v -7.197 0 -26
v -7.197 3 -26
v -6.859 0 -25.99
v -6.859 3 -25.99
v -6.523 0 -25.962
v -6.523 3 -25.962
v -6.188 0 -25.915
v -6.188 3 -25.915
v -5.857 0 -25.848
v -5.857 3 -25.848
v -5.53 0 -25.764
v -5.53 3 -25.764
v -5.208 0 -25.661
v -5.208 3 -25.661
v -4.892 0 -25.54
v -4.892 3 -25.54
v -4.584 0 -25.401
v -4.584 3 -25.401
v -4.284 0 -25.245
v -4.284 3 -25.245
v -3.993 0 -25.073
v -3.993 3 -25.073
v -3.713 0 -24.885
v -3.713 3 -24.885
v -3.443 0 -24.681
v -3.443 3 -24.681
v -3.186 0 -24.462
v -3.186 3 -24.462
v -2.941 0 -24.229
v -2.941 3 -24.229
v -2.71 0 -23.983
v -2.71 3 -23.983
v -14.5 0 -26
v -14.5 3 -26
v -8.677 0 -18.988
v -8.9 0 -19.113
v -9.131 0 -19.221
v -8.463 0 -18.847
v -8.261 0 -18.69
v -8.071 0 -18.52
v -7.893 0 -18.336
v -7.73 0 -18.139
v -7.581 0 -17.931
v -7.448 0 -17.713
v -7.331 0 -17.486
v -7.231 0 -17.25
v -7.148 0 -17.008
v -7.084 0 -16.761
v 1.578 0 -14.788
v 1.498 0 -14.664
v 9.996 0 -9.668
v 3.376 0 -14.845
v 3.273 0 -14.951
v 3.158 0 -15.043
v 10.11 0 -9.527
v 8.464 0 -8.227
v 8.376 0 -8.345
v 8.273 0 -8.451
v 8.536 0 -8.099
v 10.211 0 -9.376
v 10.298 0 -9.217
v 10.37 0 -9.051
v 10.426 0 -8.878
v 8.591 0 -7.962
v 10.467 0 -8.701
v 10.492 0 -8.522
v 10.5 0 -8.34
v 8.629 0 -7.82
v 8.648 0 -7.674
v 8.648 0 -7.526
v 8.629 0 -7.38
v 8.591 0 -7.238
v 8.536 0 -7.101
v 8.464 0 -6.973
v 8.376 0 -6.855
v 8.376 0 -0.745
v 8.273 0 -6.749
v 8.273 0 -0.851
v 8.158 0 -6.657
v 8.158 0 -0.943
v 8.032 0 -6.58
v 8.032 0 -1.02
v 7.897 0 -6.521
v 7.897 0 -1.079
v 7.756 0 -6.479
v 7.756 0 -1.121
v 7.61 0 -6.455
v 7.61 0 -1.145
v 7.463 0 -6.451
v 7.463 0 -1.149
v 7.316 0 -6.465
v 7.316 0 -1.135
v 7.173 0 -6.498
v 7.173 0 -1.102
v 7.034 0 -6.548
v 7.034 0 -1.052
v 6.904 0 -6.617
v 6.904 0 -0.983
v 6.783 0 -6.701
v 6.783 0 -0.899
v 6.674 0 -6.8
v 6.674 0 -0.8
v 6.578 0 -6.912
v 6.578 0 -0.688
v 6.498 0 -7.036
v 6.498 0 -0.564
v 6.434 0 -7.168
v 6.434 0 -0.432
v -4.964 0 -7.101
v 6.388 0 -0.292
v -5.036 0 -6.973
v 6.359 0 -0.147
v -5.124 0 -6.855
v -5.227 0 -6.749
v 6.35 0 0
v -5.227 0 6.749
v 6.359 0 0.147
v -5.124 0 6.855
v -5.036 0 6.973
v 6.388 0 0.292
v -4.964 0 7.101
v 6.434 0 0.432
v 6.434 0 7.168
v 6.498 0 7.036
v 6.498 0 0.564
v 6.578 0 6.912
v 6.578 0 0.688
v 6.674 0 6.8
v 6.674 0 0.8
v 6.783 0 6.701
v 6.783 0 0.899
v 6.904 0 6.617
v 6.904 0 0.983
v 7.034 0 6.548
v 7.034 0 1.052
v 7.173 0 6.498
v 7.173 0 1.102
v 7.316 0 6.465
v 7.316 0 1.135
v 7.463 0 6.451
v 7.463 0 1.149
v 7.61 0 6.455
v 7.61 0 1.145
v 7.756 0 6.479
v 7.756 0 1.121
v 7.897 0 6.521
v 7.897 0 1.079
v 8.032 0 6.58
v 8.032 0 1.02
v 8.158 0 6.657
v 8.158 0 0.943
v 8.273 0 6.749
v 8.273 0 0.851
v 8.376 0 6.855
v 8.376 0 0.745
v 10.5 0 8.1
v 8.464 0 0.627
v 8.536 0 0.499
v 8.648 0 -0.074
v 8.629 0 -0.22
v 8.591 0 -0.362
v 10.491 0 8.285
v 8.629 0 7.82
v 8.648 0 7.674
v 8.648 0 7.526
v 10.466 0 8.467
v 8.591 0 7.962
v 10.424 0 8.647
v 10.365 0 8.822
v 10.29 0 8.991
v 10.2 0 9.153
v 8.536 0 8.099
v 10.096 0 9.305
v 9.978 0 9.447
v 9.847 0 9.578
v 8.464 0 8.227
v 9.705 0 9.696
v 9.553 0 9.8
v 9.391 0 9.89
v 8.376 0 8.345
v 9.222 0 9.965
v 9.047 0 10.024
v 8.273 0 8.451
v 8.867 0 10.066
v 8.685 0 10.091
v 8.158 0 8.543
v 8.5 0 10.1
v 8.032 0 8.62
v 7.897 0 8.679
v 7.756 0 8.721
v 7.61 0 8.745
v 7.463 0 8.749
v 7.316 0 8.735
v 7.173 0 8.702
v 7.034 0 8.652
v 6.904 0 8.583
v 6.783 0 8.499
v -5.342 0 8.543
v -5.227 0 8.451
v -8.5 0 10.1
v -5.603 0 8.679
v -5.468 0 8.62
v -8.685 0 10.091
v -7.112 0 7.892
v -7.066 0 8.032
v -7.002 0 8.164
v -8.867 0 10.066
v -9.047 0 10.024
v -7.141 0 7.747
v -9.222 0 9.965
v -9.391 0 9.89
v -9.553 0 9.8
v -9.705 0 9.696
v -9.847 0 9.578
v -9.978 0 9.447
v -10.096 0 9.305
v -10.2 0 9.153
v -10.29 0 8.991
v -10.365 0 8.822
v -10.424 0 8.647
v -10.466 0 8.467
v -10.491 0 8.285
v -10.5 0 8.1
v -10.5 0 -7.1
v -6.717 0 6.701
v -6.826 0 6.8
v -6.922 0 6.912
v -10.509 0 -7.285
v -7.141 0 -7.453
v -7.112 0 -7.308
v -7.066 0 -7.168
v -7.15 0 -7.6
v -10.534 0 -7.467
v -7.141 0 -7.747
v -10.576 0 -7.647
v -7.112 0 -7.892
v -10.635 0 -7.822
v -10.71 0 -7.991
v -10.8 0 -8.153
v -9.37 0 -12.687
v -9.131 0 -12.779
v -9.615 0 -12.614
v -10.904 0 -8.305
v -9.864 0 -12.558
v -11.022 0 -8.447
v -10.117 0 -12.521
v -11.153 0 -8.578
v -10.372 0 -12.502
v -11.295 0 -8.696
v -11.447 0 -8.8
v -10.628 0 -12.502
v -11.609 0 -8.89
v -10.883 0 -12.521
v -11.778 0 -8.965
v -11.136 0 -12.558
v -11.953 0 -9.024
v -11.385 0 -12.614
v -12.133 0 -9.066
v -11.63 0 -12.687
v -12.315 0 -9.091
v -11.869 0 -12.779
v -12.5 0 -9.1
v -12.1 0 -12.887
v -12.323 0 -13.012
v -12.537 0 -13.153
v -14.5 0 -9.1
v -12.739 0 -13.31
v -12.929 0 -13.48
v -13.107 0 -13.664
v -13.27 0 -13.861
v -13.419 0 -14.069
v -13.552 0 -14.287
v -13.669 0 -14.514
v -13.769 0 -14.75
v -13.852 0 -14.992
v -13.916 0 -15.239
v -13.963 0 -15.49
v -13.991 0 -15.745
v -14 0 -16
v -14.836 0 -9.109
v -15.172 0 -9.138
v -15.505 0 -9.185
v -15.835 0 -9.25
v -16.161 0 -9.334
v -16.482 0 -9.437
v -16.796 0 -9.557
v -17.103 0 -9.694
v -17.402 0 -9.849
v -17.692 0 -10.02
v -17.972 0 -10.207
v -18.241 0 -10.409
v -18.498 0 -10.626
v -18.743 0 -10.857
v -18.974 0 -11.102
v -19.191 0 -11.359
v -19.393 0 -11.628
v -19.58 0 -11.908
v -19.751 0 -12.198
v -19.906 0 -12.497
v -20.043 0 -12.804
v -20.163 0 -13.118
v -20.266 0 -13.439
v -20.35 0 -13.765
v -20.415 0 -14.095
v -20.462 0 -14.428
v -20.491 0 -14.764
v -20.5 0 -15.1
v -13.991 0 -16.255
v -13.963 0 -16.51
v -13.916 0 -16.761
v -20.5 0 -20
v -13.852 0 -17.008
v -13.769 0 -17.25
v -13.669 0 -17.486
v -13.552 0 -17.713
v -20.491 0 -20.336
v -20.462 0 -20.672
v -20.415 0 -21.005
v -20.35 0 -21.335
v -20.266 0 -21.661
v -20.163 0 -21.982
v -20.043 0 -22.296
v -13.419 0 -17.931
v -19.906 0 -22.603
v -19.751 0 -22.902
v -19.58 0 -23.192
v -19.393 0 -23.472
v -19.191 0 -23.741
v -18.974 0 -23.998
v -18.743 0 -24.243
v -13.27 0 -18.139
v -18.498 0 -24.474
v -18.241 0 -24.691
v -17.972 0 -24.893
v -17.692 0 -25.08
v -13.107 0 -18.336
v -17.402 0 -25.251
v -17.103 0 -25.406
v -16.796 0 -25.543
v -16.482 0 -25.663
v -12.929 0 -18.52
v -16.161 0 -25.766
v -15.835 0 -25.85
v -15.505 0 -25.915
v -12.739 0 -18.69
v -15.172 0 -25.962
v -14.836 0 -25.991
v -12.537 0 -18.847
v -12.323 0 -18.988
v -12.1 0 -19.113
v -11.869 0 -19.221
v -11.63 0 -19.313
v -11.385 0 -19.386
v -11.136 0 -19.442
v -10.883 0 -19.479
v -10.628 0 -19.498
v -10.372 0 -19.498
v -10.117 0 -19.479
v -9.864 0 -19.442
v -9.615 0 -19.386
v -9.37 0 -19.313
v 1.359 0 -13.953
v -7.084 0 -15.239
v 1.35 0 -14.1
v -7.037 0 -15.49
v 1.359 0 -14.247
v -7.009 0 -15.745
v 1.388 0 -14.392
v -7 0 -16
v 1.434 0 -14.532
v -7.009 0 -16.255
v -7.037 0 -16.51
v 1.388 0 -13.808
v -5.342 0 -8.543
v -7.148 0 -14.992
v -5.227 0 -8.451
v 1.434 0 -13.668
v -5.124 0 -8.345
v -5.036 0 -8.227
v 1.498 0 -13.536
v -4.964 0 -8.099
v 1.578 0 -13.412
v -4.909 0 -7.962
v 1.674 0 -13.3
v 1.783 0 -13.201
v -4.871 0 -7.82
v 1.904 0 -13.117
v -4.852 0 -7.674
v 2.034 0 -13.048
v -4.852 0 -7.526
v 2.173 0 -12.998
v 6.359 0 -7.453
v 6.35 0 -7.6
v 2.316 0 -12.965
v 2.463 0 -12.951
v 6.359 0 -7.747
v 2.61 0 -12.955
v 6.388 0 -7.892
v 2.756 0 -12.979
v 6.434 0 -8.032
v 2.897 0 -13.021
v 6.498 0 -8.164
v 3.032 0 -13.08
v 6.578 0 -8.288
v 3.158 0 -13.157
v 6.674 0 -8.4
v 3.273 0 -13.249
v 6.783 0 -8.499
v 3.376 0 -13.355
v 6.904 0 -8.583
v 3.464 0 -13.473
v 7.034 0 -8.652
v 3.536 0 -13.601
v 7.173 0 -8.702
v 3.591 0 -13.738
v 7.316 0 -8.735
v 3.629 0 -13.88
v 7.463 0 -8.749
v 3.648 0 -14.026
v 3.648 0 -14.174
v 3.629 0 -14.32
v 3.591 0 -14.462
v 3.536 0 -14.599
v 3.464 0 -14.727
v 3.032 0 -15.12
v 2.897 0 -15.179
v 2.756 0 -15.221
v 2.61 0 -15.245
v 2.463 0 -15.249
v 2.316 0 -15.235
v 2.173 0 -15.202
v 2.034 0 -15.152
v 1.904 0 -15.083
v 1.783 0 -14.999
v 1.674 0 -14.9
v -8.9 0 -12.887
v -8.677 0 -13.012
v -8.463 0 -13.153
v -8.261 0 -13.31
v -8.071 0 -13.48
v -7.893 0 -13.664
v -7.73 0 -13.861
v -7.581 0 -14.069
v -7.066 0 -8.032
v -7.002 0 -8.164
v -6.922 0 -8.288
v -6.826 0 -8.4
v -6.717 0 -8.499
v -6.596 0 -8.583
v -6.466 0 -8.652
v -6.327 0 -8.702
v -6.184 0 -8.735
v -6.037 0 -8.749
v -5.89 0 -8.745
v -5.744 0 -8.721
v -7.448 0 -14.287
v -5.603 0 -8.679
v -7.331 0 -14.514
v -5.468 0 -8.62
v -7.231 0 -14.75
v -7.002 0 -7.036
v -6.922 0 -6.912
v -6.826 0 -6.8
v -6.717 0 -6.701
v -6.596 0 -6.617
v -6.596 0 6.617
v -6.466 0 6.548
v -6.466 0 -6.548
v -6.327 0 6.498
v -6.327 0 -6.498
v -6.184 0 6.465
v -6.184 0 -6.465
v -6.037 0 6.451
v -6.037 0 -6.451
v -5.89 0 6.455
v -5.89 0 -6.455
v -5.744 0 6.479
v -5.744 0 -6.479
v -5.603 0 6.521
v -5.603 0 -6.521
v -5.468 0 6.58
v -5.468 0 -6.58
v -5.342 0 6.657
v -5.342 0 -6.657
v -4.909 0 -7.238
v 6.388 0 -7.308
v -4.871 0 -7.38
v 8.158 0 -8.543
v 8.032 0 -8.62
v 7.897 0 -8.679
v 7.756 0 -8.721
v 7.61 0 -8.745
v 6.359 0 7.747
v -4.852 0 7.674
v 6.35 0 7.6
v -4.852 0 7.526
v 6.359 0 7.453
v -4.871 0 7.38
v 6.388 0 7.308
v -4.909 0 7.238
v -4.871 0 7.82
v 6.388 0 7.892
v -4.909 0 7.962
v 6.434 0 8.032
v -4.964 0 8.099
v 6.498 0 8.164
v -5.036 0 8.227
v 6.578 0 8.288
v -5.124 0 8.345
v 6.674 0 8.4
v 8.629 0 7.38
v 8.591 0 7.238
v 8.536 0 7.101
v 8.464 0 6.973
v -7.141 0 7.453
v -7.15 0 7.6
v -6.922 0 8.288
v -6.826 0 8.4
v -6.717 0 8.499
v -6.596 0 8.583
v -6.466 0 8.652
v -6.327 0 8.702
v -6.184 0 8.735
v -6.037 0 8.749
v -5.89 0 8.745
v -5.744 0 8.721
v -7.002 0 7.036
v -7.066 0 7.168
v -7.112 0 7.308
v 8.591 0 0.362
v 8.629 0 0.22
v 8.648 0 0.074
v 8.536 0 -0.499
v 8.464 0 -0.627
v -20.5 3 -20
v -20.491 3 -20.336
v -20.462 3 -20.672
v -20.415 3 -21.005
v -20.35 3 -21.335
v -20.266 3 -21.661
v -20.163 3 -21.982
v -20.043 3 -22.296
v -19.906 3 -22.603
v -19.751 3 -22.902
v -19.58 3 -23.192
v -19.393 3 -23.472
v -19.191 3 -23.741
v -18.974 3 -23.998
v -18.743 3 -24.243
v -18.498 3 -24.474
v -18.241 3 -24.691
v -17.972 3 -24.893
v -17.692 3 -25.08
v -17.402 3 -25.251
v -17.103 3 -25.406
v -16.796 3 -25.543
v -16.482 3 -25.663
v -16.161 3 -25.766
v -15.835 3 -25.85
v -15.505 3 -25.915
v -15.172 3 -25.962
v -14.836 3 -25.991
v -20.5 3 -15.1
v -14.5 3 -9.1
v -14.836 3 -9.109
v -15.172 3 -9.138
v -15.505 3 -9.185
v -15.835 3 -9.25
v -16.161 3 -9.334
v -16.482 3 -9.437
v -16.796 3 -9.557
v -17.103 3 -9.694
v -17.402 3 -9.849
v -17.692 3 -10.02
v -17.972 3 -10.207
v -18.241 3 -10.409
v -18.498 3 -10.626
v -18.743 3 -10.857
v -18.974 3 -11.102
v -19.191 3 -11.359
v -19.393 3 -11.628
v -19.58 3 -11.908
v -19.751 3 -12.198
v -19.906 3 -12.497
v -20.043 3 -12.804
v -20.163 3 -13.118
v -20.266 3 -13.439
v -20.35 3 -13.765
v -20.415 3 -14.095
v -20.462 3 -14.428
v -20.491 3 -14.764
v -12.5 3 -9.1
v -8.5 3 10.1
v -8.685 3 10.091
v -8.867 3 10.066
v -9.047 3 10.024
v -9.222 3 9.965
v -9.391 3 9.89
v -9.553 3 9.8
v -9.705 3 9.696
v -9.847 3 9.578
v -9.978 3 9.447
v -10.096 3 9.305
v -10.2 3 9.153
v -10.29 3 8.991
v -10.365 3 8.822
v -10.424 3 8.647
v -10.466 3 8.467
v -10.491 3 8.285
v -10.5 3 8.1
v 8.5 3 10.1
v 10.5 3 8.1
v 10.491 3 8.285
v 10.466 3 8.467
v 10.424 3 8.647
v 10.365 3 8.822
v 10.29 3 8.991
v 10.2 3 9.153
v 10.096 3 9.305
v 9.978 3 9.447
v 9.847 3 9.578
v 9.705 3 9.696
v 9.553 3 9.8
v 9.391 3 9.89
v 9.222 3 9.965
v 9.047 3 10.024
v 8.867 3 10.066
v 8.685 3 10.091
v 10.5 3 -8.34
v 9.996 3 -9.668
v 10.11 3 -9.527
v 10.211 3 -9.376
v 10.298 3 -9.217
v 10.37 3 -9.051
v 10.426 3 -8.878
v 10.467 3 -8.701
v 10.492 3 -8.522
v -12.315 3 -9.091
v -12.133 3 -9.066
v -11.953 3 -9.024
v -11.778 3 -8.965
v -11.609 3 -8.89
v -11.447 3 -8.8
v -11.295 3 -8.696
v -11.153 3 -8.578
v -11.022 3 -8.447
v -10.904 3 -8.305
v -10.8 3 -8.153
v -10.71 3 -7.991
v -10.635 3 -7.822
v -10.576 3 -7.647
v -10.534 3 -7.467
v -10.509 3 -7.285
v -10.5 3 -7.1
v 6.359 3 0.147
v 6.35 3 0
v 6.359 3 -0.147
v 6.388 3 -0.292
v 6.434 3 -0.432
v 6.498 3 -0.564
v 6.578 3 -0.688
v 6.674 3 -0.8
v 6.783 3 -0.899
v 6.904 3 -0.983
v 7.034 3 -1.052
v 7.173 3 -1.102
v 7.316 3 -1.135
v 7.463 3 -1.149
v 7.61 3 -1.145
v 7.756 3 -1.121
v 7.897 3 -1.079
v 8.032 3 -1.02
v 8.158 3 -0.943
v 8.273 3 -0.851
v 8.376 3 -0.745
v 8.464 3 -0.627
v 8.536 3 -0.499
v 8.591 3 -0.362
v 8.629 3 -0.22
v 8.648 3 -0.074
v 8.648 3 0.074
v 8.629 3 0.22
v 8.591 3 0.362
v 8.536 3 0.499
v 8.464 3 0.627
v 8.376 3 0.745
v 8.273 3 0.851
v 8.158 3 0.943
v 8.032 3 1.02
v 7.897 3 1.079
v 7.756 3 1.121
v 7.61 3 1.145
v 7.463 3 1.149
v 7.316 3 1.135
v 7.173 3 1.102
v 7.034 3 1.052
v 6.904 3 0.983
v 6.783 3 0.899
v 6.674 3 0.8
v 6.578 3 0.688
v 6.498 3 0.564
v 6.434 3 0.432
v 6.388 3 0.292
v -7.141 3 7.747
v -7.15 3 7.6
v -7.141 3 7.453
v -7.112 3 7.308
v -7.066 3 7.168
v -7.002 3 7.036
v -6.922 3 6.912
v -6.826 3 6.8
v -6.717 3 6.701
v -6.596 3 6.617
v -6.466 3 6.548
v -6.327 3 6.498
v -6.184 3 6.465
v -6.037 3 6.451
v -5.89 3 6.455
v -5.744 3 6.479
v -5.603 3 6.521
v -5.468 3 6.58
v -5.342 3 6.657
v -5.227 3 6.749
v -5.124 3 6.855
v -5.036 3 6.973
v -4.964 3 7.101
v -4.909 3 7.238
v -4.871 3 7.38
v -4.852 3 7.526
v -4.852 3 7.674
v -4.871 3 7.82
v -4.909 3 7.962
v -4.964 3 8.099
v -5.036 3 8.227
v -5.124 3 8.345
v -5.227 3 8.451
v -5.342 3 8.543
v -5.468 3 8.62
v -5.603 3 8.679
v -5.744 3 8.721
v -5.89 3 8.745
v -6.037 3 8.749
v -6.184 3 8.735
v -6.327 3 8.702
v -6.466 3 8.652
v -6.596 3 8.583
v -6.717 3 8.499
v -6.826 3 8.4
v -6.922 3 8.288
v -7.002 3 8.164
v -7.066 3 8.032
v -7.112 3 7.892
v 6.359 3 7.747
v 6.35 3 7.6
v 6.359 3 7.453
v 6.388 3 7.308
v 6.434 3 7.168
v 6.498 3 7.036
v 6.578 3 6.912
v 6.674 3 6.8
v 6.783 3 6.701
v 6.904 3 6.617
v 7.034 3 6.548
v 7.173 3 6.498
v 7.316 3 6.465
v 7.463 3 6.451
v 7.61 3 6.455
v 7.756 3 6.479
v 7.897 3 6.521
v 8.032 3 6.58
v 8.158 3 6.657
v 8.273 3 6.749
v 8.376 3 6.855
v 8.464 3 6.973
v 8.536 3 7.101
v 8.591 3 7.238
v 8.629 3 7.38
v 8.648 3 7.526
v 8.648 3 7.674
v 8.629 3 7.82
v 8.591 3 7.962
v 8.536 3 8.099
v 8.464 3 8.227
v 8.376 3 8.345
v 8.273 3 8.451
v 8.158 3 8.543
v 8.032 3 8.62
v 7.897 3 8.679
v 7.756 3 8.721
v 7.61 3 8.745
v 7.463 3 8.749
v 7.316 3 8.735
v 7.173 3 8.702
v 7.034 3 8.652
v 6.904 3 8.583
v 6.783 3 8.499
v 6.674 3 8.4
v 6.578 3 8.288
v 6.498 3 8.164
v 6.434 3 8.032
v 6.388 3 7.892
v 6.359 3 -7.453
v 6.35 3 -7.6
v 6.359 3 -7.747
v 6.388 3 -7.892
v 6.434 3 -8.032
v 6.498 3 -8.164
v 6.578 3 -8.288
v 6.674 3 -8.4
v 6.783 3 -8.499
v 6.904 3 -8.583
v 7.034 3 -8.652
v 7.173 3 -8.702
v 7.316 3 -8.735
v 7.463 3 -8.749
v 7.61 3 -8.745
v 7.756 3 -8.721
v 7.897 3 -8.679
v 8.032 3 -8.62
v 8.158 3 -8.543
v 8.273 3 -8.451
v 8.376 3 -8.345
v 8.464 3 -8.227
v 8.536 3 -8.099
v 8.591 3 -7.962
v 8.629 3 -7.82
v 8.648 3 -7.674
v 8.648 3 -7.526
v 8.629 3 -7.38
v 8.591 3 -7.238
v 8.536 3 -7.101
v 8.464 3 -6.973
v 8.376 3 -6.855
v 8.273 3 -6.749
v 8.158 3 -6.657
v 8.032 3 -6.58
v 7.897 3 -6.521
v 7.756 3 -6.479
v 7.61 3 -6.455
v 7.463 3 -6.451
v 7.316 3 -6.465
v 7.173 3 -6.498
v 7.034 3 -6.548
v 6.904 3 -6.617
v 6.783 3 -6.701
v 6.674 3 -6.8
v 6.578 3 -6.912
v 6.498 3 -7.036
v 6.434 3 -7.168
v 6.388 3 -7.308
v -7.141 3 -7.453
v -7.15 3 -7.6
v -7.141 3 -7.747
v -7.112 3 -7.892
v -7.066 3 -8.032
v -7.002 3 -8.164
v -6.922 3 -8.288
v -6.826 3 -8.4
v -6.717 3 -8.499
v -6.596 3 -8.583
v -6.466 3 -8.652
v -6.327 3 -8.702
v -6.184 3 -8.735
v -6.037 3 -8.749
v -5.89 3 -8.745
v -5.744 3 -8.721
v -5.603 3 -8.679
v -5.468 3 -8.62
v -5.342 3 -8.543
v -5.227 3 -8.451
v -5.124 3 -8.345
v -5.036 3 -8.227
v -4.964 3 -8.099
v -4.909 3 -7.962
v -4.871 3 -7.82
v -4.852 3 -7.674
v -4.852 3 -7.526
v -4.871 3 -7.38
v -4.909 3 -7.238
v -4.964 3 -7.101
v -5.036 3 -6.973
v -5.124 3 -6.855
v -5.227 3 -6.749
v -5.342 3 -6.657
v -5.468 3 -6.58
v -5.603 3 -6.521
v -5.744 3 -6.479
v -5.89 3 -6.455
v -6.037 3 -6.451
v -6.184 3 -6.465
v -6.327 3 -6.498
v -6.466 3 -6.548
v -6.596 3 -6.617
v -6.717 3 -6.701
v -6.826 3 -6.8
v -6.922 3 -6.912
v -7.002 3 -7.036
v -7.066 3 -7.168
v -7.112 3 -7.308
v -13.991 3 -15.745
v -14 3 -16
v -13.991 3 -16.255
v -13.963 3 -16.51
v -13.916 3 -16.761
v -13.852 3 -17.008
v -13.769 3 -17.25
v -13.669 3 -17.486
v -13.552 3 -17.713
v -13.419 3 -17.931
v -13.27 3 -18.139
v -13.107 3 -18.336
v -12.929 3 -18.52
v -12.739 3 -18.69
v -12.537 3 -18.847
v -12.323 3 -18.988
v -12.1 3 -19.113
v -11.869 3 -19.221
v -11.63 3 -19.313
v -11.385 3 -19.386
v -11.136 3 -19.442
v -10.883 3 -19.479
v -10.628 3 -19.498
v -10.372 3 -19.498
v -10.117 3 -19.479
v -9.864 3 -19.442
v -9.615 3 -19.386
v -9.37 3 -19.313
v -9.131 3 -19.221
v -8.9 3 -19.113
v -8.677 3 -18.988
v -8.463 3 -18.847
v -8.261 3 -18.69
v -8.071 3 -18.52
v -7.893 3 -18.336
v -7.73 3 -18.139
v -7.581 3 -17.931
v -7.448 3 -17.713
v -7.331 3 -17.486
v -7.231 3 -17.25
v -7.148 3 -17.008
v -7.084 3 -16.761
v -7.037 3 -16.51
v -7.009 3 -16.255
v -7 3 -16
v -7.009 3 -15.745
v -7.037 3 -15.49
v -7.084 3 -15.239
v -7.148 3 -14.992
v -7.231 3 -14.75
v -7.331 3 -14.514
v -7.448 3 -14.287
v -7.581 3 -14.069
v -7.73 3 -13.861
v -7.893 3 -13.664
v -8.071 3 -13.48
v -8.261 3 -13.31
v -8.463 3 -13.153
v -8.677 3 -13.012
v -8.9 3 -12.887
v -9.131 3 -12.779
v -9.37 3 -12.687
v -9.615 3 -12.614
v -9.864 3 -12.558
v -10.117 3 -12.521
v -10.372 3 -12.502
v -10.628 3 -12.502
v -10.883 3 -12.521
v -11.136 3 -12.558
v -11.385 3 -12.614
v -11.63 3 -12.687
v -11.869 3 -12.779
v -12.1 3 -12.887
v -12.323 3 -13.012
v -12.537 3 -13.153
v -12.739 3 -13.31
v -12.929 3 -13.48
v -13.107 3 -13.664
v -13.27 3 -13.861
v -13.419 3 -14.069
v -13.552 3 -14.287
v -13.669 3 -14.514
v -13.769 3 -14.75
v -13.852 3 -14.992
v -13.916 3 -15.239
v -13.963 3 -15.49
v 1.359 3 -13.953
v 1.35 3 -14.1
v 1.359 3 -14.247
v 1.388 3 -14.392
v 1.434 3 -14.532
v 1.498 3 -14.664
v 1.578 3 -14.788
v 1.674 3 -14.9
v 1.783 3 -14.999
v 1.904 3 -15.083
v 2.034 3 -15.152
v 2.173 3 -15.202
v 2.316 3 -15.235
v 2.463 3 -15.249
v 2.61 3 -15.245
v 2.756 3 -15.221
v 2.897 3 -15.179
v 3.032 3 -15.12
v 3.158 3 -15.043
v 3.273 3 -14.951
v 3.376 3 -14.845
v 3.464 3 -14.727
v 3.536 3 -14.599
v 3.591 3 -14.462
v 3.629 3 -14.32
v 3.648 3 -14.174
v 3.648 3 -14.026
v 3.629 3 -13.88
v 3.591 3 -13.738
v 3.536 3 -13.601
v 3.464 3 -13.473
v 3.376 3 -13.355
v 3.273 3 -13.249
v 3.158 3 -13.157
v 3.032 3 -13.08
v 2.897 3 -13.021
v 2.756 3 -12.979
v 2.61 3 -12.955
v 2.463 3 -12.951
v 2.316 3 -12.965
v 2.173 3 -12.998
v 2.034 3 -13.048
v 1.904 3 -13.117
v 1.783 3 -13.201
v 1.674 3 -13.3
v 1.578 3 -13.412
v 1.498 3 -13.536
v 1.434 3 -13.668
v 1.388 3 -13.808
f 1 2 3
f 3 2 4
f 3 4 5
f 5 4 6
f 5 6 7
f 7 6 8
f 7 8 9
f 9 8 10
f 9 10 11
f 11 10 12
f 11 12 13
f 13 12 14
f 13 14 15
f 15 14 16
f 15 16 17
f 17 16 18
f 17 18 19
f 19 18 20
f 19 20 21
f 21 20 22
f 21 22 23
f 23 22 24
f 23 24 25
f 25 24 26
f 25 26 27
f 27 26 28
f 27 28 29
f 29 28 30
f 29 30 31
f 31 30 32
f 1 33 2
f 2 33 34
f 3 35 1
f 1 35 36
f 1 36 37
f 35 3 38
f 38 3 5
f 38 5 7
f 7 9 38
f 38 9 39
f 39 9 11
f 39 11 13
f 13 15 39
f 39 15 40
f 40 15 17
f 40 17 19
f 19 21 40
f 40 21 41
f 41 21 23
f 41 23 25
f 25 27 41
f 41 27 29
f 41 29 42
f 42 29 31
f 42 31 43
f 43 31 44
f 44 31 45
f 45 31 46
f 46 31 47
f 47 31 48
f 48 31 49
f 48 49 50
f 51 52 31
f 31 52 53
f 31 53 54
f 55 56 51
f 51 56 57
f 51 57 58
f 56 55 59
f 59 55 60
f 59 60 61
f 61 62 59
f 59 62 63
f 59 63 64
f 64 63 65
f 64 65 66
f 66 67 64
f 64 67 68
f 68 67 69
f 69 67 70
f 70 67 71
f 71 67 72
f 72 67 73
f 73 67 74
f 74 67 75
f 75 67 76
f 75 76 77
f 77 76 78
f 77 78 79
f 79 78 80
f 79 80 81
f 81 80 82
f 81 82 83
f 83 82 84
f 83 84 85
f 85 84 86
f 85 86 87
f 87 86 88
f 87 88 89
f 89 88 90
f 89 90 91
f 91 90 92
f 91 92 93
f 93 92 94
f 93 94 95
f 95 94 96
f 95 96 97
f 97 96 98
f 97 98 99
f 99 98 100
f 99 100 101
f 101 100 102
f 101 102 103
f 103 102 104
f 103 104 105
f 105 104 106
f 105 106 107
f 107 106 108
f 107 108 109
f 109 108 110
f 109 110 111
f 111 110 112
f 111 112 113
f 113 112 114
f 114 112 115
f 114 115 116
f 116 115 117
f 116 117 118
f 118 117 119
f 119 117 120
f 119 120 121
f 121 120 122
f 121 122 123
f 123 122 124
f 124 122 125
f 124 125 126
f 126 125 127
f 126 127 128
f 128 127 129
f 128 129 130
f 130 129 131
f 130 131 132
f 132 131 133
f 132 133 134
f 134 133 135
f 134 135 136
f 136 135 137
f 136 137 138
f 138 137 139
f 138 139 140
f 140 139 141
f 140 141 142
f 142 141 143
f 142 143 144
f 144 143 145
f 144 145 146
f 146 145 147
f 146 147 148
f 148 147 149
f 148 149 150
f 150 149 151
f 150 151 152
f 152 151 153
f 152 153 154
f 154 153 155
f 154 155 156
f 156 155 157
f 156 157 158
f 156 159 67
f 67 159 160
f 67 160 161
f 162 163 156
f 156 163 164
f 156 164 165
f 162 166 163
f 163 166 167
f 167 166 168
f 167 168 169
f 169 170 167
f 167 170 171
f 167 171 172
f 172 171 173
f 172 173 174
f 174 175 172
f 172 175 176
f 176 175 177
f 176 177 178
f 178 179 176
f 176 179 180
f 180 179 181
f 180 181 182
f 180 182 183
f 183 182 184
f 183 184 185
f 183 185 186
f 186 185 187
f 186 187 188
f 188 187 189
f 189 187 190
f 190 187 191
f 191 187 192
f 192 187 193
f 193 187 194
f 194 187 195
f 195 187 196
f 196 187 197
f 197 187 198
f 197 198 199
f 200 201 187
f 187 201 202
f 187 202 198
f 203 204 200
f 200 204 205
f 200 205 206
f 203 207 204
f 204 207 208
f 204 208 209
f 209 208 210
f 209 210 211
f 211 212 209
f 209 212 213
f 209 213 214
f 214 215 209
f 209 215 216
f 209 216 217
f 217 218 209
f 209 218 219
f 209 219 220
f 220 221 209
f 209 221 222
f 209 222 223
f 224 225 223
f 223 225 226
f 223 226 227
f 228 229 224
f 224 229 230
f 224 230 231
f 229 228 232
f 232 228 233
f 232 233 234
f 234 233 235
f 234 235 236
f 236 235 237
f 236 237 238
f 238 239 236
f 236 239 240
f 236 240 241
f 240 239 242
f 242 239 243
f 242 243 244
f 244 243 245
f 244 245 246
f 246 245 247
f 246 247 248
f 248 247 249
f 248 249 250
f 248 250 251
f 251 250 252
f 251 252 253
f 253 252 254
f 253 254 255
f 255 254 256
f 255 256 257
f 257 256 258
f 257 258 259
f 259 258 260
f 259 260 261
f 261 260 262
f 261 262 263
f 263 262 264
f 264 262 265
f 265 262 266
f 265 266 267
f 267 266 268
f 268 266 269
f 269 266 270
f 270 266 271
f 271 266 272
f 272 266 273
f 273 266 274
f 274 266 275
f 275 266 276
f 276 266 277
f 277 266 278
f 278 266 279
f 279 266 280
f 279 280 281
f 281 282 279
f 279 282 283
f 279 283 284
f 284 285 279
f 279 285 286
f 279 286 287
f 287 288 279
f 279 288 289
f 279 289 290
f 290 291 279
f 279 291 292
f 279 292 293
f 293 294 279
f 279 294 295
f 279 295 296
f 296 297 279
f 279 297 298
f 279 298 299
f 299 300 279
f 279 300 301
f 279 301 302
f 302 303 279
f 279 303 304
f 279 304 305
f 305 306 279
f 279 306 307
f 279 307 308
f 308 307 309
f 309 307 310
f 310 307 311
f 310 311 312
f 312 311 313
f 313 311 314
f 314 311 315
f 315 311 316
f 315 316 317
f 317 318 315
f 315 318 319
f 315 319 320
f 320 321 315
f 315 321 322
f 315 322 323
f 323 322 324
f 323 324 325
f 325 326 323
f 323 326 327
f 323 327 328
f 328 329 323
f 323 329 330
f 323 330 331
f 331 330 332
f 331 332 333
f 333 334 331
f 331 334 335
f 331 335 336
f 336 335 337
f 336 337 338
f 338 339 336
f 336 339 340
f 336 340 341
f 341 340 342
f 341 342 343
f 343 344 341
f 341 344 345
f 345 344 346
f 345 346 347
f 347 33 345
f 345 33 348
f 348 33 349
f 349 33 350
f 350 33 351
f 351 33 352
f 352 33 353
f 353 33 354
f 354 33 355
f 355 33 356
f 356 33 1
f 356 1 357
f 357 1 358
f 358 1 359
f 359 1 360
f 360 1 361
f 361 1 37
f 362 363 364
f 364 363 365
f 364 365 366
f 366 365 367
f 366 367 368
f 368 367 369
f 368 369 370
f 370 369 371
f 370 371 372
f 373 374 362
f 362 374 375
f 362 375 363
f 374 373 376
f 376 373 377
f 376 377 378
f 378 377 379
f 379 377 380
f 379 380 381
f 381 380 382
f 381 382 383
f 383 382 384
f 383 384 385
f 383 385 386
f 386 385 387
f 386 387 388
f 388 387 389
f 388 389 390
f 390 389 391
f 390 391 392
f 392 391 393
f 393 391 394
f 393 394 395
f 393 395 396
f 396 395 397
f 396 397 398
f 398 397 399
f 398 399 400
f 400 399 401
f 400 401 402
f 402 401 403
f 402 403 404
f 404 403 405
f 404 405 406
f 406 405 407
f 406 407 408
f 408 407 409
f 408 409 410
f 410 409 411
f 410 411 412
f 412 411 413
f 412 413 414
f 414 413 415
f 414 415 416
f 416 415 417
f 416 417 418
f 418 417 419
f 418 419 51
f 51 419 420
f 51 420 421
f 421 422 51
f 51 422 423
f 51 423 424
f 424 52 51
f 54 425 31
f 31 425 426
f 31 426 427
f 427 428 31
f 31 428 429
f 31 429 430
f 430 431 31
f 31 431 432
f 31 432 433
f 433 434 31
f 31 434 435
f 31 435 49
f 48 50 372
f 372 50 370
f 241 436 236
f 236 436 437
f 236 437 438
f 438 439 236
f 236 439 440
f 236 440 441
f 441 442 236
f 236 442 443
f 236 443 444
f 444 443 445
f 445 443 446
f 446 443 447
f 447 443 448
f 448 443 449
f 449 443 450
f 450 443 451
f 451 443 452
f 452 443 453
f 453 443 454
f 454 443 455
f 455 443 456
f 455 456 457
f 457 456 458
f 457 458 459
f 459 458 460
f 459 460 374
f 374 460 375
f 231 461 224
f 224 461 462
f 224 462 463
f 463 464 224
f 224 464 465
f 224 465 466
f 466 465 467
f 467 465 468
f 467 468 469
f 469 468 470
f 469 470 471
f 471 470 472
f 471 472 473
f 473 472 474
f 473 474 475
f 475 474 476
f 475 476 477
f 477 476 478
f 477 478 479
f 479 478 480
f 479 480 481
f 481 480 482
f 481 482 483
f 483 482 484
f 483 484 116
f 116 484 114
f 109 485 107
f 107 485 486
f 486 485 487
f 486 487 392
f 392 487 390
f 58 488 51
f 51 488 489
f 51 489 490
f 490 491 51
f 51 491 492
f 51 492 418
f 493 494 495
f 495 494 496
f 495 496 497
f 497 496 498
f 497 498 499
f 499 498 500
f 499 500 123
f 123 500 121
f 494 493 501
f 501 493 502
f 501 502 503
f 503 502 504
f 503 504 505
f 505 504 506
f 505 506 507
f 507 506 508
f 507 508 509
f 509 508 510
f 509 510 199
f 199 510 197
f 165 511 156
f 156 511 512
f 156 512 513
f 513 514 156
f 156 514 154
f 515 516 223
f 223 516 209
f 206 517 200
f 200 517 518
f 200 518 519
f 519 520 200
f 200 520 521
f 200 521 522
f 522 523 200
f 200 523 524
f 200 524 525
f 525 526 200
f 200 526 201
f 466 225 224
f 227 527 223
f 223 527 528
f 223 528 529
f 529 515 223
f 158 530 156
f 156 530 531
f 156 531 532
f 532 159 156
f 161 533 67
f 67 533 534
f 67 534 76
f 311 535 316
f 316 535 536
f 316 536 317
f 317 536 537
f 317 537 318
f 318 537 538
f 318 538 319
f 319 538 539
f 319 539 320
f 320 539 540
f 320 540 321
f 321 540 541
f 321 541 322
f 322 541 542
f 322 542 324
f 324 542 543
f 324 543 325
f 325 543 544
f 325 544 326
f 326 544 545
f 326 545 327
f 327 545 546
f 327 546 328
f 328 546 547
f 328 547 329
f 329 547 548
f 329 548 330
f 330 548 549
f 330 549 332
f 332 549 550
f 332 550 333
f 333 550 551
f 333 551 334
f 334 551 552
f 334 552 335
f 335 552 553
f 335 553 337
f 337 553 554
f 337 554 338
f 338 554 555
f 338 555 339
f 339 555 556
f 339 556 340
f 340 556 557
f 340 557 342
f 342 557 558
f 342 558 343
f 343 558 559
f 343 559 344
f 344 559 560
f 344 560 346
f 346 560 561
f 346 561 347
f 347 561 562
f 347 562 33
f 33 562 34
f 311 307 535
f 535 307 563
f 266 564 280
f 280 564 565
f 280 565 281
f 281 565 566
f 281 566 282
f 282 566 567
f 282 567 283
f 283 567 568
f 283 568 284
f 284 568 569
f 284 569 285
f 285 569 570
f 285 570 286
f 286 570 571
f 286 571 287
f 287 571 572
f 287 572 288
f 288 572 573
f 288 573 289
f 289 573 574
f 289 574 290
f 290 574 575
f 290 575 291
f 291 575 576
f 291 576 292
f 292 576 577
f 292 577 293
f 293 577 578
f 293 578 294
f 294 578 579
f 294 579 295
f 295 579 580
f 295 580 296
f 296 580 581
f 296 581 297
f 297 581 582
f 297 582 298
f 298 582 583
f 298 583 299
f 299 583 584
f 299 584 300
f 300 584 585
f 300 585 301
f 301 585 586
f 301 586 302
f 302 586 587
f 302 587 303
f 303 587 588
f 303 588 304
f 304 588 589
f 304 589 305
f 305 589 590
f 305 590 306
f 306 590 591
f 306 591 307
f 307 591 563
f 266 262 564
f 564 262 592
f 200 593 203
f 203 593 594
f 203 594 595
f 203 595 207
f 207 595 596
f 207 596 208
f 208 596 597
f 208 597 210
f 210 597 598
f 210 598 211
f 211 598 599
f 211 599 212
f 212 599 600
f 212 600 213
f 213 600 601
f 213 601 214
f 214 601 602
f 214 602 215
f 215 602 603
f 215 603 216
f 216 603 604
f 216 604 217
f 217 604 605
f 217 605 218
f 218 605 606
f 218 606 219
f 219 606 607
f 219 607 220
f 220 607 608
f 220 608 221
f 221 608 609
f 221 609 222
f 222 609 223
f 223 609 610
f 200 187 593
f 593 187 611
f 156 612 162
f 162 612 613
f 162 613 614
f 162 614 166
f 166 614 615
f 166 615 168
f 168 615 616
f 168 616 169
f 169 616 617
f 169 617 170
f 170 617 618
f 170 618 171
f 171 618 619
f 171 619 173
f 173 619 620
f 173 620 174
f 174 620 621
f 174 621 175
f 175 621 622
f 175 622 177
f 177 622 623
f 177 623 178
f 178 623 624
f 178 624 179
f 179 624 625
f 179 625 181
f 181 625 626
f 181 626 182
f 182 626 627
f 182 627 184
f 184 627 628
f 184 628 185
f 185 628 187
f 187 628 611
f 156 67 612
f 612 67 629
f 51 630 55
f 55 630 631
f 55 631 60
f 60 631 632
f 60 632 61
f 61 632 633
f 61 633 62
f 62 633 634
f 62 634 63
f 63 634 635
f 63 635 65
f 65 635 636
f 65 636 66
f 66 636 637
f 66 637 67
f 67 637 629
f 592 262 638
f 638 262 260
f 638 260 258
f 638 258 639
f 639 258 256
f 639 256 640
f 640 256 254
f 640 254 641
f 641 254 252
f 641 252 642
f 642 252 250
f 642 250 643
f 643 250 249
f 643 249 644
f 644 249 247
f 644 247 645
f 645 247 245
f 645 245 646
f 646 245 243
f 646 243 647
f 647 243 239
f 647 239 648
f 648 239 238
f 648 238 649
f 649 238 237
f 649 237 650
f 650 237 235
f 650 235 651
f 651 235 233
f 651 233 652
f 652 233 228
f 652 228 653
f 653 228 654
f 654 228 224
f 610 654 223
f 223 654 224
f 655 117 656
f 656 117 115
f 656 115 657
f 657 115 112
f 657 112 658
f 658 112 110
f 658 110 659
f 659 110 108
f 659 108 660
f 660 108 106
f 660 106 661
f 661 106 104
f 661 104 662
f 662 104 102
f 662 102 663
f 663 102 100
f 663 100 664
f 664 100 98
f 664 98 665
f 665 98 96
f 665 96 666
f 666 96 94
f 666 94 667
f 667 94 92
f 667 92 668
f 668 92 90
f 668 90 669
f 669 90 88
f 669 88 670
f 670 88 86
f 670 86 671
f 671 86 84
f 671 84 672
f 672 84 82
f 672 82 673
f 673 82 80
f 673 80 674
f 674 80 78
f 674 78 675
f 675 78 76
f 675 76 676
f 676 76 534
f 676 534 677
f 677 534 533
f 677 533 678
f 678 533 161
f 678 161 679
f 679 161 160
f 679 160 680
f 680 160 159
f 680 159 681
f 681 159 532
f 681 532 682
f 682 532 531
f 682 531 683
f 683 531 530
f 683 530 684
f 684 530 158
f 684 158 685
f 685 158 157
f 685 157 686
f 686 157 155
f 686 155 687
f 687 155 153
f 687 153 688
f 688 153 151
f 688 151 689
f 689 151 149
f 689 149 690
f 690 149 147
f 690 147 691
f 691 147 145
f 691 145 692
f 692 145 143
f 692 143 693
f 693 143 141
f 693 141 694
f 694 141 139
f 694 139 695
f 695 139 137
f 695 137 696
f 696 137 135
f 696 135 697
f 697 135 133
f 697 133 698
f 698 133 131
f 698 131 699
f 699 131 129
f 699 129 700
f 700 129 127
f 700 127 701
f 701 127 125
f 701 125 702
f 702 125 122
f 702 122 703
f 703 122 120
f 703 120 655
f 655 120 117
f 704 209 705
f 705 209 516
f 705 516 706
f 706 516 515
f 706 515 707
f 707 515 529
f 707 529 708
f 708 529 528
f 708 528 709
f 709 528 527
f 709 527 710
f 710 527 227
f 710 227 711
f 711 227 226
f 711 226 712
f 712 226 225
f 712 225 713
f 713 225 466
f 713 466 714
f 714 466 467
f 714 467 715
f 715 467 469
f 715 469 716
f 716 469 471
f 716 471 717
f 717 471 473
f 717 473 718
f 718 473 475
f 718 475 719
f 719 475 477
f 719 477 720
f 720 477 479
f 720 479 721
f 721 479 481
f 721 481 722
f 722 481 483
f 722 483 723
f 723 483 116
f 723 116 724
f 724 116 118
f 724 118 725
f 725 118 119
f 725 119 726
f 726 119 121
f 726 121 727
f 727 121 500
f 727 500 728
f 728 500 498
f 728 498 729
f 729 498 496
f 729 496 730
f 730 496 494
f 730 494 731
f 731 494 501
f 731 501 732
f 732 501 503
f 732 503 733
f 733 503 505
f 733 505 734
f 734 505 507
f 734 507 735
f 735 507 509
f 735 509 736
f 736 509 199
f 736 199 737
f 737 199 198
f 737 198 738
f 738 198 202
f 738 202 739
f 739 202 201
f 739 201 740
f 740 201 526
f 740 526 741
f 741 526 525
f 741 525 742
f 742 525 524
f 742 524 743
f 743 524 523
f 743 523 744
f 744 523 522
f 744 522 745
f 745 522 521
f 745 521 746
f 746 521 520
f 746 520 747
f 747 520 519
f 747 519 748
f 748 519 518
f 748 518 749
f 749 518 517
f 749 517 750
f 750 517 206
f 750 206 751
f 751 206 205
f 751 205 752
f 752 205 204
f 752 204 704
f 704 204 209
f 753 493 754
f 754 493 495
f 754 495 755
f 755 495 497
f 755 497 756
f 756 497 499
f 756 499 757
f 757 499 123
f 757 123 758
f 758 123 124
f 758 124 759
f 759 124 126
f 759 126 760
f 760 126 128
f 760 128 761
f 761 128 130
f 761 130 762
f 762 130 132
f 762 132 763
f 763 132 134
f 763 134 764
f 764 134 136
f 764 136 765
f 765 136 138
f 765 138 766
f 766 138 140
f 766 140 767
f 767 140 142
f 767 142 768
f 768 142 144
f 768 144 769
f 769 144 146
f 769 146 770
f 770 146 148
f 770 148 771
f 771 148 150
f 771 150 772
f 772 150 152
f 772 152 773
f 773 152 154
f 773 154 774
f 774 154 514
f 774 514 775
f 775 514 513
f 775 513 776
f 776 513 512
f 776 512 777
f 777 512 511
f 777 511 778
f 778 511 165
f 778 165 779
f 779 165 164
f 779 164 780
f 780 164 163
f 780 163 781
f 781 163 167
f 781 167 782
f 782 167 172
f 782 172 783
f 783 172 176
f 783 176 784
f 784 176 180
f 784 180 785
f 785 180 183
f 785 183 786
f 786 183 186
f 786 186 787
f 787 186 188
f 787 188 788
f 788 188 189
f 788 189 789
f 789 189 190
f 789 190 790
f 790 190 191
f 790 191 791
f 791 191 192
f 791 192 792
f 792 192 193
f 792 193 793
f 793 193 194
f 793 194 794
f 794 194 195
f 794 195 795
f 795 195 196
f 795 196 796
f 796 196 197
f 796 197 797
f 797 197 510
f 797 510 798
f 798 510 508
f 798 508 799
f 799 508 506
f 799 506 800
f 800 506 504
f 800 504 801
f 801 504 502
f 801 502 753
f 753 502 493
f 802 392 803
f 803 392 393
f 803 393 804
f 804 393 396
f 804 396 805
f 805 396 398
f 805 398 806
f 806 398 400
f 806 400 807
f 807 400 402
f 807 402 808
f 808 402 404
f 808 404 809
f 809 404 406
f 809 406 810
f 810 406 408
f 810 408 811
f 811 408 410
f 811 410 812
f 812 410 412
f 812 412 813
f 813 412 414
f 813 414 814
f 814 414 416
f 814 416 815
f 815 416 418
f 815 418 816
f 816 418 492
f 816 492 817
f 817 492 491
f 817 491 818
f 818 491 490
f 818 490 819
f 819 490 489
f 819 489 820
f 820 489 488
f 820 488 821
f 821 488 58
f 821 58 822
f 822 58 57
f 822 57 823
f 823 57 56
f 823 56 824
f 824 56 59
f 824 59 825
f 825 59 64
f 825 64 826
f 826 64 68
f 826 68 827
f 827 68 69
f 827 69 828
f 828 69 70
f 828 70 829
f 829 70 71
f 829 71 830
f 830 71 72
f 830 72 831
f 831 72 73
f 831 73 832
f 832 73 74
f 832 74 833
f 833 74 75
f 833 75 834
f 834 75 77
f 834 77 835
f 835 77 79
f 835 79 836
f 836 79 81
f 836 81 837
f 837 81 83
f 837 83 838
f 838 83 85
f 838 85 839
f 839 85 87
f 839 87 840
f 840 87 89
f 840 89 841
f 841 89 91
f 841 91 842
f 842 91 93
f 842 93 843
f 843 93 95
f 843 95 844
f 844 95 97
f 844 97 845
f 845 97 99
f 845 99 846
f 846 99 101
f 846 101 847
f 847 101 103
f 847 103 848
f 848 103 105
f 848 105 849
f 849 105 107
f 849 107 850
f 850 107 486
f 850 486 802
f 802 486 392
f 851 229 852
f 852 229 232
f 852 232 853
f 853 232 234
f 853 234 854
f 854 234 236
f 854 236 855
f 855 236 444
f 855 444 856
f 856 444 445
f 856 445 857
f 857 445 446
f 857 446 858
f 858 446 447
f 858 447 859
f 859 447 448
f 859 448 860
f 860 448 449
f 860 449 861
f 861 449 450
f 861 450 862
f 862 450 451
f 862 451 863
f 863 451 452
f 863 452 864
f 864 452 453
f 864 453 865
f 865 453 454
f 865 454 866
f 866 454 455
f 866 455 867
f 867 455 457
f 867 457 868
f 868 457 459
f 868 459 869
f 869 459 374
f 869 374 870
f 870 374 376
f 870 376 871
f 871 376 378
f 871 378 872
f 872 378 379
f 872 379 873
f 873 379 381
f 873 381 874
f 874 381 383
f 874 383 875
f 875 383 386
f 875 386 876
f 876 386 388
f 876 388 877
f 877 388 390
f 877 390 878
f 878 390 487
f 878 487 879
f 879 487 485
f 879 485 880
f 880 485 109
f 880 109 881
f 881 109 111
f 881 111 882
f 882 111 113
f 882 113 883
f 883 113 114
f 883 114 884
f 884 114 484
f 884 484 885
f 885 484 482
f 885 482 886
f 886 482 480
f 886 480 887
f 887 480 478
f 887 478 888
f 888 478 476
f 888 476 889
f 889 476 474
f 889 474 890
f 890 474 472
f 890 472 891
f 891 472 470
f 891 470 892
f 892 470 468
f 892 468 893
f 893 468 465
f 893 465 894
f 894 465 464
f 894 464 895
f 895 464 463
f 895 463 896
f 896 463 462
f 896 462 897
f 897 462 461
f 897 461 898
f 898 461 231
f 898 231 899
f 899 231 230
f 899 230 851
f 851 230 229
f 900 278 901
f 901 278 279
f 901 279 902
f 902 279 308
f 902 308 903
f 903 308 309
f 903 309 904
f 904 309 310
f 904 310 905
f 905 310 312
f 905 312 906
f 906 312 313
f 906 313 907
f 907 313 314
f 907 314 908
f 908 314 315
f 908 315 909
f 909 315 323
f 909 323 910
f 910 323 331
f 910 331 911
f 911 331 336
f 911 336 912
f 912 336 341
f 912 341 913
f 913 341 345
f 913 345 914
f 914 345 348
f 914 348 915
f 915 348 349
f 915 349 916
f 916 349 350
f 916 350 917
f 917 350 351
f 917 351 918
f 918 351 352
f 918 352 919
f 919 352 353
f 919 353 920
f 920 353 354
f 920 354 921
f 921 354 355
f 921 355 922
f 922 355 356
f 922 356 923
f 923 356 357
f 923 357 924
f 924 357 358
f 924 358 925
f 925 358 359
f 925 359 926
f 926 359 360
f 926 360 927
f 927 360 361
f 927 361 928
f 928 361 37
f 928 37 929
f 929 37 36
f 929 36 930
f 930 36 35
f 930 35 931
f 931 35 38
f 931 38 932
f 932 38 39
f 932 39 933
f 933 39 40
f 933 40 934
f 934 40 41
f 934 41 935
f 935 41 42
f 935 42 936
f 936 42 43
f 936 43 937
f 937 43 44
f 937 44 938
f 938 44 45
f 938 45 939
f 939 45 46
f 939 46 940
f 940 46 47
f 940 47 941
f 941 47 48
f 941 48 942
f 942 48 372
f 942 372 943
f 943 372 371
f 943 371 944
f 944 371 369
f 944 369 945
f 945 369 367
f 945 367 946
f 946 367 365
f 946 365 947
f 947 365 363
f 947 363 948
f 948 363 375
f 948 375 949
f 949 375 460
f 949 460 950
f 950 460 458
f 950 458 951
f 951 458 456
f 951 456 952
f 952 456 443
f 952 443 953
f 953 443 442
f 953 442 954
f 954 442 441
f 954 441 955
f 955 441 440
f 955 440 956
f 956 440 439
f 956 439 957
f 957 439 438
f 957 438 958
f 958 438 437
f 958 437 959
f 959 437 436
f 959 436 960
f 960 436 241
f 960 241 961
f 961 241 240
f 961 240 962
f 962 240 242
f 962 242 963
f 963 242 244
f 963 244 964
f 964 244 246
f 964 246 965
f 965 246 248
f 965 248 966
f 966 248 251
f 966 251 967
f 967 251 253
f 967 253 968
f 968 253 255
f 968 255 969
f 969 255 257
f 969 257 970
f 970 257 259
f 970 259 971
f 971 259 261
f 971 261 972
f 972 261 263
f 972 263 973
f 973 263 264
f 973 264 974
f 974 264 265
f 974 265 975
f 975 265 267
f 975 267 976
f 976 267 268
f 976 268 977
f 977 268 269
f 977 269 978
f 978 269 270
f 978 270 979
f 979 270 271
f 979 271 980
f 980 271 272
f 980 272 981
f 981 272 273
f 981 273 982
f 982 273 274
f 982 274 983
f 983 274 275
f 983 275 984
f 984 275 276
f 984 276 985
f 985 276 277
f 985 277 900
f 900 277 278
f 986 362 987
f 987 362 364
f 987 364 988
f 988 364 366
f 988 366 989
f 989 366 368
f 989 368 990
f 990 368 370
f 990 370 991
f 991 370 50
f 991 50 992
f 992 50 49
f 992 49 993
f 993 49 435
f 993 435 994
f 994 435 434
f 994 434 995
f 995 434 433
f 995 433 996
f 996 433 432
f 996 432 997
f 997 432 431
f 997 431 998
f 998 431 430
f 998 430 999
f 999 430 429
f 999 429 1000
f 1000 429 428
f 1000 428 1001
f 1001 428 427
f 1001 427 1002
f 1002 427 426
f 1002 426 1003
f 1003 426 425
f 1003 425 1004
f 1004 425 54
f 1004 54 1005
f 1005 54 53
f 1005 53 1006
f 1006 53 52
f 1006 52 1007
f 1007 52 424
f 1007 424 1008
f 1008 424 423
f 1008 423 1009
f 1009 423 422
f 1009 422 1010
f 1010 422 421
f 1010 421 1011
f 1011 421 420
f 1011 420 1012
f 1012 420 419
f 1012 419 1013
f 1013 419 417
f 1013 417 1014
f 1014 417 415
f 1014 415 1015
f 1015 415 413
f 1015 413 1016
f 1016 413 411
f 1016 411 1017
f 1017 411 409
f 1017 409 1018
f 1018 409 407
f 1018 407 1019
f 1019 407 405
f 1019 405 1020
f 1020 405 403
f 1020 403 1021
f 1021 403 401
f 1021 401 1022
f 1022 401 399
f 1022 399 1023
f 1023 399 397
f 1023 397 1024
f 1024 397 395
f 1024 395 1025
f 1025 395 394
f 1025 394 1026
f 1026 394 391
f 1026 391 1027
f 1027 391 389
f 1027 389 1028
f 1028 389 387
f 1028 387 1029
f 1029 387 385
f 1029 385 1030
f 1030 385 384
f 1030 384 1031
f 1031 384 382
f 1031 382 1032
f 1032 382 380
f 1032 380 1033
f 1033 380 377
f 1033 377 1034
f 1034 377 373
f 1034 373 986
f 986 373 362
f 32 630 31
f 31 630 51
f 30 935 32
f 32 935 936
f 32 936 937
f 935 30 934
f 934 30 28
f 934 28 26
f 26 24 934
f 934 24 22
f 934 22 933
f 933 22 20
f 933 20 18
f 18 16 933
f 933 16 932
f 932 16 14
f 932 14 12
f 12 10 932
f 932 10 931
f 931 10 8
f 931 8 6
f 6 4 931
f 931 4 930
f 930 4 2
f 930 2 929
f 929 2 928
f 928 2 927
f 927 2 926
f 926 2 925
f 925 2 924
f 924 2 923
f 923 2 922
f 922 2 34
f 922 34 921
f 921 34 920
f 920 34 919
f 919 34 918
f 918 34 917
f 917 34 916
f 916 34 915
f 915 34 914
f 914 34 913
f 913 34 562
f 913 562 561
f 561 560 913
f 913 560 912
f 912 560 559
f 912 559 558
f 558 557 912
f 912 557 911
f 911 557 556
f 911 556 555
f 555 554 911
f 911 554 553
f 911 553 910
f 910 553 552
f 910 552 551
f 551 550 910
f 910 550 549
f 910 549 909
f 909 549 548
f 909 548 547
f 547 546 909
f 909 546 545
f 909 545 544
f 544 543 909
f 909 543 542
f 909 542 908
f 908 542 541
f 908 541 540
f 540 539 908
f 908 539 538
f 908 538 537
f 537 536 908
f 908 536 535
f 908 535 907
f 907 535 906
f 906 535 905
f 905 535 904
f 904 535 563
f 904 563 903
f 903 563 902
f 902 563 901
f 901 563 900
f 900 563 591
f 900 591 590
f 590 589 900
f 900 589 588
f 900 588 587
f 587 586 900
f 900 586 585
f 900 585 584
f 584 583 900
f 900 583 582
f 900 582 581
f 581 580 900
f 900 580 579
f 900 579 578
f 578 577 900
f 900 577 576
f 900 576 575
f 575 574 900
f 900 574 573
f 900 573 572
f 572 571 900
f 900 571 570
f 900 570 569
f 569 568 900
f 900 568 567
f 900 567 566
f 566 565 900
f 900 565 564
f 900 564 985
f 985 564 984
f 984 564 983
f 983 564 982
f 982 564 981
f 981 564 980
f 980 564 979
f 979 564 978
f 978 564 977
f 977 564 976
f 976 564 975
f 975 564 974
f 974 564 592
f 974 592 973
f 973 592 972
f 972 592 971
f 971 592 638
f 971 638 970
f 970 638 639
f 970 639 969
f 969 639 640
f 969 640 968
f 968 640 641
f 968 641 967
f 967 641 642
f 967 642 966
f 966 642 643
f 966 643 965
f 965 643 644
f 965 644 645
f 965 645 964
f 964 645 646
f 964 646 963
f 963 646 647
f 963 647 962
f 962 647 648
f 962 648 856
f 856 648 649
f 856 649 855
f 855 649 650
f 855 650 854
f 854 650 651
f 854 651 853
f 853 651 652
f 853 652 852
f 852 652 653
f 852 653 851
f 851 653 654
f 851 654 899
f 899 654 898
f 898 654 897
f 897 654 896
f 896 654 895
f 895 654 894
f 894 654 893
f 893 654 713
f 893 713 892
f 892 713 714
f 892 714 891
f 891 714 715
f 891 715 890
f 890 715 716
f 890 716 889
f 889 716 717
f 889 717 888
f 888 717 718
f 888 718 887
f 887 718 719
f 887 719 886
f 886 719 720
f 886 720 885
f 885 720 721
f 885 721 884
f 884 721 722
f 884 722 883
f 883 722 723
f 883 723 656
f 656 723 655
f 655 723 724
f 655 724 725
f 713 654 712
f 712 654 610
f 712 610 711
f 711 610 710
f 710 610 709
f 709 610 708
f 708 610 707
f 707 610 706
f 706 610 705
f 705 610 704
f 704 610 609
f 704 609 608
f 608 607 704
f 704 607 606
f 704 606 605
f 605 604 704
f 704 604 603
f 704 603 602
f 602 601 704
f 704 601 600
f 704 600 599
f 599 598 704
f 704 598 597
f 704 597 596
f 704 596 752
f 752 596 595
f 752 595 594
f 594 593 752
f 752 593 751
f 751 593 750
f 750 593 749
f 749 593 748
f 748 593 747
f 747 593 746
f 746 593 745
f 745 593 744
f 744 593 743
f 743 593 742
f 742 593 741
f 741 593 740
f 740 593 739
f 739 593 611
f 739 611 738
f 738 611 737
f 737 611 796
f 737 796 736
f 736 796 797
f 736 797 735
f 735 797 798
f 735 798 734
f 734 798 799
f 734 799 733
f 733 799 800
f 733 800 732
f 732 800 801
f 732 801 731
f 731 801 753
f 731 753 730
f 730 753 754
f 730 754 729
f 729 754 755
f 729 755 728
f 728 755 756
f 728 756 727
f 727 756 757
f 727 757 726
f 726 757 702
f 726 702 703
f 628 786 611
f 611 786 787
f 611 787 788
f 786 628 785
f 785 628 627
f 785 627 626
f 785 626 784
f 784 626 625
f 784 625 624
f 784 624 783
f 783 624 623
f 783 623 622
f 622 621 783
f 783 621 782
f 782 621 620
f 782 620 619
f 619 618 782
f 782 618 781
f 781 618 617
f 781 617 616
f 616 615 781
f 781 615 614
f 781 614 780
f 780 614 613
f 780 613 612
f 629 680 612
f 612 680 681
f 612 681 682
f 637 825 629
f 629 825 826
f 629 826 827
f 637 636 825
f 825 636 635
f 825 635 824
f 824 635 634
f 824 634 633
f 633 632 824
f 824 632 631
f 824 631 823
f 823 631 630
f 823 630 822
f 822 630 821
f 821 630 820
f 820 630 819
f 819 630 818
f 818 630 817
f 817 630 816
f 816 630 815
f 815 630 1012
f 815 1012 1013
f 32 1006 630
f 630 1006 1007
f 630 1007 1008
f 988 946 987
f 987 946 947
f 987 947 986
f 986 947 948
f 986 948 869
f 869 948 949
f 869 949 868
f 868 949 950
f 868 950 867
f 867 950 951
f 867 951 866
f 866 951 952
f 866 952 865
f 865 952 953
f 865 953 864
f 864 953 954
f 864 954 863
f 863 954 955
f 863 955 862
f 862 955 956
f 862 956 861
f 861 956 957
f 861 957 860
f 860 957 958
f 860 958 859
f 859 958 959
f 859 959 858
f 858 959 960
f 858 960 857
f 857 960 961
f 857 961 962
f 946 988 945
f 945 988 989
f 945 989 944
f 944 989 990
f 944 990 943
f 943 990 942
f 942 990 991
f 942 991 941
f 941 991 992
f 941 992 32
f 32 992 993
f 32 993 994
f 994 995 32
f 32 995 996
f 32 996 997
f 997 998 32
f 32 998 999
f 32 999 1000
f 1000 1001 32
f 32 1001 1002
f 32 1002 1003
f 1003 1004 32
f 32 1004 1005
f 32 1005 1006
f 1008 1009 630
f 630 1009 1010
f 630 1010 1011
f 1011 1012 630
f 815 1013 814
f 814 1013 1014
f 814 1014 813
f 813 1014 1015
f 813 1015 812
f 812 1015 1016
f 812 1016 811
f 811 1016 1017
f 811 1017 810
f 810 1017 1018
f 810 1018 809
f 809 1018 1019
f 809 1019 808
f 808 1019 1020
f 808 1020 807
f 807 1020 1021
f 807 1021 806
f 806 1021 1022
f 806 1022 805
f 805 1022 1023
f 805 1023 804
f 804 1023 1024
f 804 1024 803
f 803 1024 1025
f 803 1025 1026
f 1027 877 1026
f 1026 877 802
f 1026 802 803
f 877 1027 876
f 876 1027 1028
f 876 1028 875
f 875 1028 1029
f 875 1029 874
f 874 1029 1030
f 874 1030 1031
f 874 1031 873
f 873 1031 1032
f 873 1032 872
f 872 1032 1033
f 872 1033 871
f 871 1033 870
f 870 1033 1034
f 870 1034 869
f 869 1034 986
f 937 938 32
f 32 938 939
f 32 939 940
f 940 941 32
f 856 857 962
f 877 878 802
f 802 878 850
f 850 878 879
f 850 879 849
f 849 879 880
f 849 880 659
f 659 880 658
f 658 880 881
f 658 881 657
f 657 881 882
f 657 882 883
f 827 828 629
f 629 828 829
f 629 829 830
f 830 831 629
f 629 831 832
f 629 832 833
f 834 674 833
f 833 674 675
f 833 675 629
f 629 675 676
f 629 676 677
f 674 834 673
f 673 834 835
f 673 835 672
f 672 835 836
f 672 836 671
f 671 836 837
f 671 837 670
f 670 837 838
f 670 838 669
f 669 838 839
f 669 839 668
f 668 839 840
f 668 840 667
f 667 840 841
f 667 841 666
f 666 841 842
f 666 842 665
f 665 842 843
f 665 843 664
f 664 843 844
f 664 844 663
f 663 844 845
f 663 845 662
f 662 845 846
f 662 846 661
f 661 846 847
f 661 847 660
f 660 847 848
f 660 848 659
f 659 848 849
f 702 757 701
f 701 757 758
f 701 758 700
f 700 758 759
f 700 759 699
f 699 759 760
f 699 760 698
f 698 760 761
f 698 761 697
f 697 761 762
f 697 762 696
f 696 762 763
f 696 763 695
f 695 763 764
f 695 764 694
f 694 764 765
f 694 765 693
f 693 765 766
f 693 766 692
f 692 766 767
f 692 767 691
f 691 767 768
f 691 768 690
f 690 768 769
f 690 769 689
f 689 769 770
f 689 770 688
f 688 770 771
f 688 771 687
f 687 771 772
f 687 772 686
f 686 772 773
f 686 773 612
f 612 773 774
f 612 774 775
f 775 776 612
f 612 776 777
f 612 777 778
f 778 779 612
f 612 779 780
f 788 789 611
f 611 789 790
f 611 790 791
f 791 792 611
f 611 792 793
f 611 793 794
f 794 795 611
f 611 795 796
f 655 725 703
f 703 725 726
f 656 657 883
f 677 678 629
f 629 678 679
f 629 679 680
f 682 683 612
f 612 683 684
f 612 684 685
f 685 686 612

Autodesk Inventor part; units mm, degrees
ref_plane "YZ Plane" through (0, 0, 0) normal (1, 0, 0) x (0, 1, 0)
ref_plane "XZ Plane" through (0, 0, 0) normal (0, 1, 0) x (-1, 0, 0)
ref_plane "XY Plane" through (0, 0, 0) normal (0, 0, 1) x (1, 0, 0)
sketch "Sketch1" plane through (0, 0, 0) normal (0, 1, 0) x (-1, 0, 0)
  line L0 (-10.5, 9.1) -> (10.5, 9.1)
  line L1 (10.5, 9.1) -> (10.5, -9.1)
  line L2 (10.5, -9.1) -> (-10.5, -9.1)
  line L3 (-10.5, -9.1) -> (-10.5, 9.1)
  line L4 (-10.5, 9.1) -> (10.5, -9.1) construction
  line L5 (10.5, 9.1) -> (-10.5, -9.1) construction
  line L6 (10.5, 9.1) -> (-10.5, 9.1)
  line L7 (-10.5, 9.1) -> (-10.5, 10.1)
  line L8 (-10.5, 10.1) -> (10.5, 10.1)
  line L9 (10.5, 10.1) -> (10.5, 9.1)
  line L10 (20.5, -26) -> (-10.5, -26)
  line L11 (-10.5, -26) -> (-10.5, -9.1)
  line L12 (-10.5, -9.1) -> (20.5, -9.1)
  line L13 (20.5, -9.1) -> (20.5, -26)
  circle A0 centre (10.5, -16) radius 3.5
  line L14 (-10.5, -9.1) -> (4.5, -26)
  circle A1 centre (6, -7.6) radius 1.15
  circle A2 centre (-7.5, -7.6) radius 1.15
  circle A3 centre (-7.5, 7.6) radius 1.15
  circle A4 centre (6, 7.6) radius 1.15
  circle A5 centre (-2.5, -14.1) radius 1.15
  circle A6 centre (-7.5, 0) radius 1.15
  point P0 (0, 0)
  point P1 (0, 0)
  point P2 (0, 0)
  point P3 (0, 0)
  dimension "d0" = 9.1
  dimension "d1" = 21
  dimension "d2" = 1
  dimension "d3" = 7
  dimension "d4" = 16
  dimension "d5" = 10
  dimension "d6" = 10
  dimension "d8" = 6
  dimension "d9" = 2.3
  dimension "d10" = 1.5
  dimension "d11" = 2.3
  dimension "d12" = 3
  dimension "d13" = 4.5
  dimension "d14" = 1.5
  dimension "d15" = 2.3
  dimension "d16" = 1.5
  dimension "d17" = 3
  dimension "d18" = 2.3
  dimension "d19" = 4.5
  dimension "d20" = 1.5
  dimension "d25" = 2.3
  dimension "d26" = 14.1
  dimension "d27" = 8
  dimension "d28" = 2.3
  dimension "d29" = 3
extrude "Extrusion1" add sketch "Sketch1" along normal blind 3 contours L7 L8 L9 L0 | L0 L1 L2 L3 | L2 L12 L13 L10 L14
fillet "Fillet1" radius 2 4 edges at (-10.5, 1.5, -9.1) (10.5, 1.5, -9.1) (10.5, 1.5, 10.1) (-10.5, 1.5, 10.1)
fillet "Fillet2" radius 6 3 edges at (-20.5, 1.5, -9.1) (-20.5, 1.5, -26) (-4.5, 1.5, -26)
sketch "Sketch2" plane through (0, 3, 0) normal (0, 1, 0) x (1, 0, 0)
  arc A0 (-2.7097, 23.9829) -> (-7.197, 26) centre (-7.197, 20) ccw projected
  line L0 (-7.197, 26) -> (-14.5, 26) projected
  arc A1 (-14.5, 26) -> (-20.5, 20) centre (-14.5, 20) ccw projected
  line L1 (-20.5, 20) -> (-20.5, 15.1) projected
  arc A2 (-20.5, 15.1) -> (-14.5, 9.1) centre (-14.5, 15.1) ccw projected
  line L2 (-14.5, 9.1) -> (-12.5, 9.1) projected
  arc A3 (-10.5, 7.1) -> (-12.5, 9.1) centre (-12.5, 7.1) ccw projected
  line L3 (-10.5, 7.1) -> (-10.5, -8.1) projected
  arc A4 (-10.5, -8.1) -> (-8.5, -10.1) centre (-8.5, -8.1) ccw projected
  line L4 (-8.5, -10.1) -> (8.5, -10.1) projected
  arc A5 (8.5, -10.1) -> (10.5, -8.1) centre (8.5, -8.1) ccw projected
  line L5 (10.5, -8.1) -> (10.5, 8.3404) projected
  arc A6 (10.5, 8.3404) -> (9.9958, 9.6681) centre (8.5, 8.3404) ccw projected
  line L6 (9.9958, 9.6681) -> (-2.7097, 23.9829) projected
  circle A7 centre (2.5, 14.1) radius 1.15 projected
  circle A8 centre (-10.5, 16) radius 3.5 projected
  circle A9 centre (-6, 7.6) radius 1.15 projected
  circle A10 centre (7.5, 7.6) radius 1.15 projected
  circle A11 centre (7.5, -7.6) radius 1.15 projected
  circle A12 centre (-6, -7.6) radius 1.15 projected
  circle A13 centre (7.5, 0) radius 1.15 projected
  point P0 (0, 0)
properties part number "New_hinge_plate"
